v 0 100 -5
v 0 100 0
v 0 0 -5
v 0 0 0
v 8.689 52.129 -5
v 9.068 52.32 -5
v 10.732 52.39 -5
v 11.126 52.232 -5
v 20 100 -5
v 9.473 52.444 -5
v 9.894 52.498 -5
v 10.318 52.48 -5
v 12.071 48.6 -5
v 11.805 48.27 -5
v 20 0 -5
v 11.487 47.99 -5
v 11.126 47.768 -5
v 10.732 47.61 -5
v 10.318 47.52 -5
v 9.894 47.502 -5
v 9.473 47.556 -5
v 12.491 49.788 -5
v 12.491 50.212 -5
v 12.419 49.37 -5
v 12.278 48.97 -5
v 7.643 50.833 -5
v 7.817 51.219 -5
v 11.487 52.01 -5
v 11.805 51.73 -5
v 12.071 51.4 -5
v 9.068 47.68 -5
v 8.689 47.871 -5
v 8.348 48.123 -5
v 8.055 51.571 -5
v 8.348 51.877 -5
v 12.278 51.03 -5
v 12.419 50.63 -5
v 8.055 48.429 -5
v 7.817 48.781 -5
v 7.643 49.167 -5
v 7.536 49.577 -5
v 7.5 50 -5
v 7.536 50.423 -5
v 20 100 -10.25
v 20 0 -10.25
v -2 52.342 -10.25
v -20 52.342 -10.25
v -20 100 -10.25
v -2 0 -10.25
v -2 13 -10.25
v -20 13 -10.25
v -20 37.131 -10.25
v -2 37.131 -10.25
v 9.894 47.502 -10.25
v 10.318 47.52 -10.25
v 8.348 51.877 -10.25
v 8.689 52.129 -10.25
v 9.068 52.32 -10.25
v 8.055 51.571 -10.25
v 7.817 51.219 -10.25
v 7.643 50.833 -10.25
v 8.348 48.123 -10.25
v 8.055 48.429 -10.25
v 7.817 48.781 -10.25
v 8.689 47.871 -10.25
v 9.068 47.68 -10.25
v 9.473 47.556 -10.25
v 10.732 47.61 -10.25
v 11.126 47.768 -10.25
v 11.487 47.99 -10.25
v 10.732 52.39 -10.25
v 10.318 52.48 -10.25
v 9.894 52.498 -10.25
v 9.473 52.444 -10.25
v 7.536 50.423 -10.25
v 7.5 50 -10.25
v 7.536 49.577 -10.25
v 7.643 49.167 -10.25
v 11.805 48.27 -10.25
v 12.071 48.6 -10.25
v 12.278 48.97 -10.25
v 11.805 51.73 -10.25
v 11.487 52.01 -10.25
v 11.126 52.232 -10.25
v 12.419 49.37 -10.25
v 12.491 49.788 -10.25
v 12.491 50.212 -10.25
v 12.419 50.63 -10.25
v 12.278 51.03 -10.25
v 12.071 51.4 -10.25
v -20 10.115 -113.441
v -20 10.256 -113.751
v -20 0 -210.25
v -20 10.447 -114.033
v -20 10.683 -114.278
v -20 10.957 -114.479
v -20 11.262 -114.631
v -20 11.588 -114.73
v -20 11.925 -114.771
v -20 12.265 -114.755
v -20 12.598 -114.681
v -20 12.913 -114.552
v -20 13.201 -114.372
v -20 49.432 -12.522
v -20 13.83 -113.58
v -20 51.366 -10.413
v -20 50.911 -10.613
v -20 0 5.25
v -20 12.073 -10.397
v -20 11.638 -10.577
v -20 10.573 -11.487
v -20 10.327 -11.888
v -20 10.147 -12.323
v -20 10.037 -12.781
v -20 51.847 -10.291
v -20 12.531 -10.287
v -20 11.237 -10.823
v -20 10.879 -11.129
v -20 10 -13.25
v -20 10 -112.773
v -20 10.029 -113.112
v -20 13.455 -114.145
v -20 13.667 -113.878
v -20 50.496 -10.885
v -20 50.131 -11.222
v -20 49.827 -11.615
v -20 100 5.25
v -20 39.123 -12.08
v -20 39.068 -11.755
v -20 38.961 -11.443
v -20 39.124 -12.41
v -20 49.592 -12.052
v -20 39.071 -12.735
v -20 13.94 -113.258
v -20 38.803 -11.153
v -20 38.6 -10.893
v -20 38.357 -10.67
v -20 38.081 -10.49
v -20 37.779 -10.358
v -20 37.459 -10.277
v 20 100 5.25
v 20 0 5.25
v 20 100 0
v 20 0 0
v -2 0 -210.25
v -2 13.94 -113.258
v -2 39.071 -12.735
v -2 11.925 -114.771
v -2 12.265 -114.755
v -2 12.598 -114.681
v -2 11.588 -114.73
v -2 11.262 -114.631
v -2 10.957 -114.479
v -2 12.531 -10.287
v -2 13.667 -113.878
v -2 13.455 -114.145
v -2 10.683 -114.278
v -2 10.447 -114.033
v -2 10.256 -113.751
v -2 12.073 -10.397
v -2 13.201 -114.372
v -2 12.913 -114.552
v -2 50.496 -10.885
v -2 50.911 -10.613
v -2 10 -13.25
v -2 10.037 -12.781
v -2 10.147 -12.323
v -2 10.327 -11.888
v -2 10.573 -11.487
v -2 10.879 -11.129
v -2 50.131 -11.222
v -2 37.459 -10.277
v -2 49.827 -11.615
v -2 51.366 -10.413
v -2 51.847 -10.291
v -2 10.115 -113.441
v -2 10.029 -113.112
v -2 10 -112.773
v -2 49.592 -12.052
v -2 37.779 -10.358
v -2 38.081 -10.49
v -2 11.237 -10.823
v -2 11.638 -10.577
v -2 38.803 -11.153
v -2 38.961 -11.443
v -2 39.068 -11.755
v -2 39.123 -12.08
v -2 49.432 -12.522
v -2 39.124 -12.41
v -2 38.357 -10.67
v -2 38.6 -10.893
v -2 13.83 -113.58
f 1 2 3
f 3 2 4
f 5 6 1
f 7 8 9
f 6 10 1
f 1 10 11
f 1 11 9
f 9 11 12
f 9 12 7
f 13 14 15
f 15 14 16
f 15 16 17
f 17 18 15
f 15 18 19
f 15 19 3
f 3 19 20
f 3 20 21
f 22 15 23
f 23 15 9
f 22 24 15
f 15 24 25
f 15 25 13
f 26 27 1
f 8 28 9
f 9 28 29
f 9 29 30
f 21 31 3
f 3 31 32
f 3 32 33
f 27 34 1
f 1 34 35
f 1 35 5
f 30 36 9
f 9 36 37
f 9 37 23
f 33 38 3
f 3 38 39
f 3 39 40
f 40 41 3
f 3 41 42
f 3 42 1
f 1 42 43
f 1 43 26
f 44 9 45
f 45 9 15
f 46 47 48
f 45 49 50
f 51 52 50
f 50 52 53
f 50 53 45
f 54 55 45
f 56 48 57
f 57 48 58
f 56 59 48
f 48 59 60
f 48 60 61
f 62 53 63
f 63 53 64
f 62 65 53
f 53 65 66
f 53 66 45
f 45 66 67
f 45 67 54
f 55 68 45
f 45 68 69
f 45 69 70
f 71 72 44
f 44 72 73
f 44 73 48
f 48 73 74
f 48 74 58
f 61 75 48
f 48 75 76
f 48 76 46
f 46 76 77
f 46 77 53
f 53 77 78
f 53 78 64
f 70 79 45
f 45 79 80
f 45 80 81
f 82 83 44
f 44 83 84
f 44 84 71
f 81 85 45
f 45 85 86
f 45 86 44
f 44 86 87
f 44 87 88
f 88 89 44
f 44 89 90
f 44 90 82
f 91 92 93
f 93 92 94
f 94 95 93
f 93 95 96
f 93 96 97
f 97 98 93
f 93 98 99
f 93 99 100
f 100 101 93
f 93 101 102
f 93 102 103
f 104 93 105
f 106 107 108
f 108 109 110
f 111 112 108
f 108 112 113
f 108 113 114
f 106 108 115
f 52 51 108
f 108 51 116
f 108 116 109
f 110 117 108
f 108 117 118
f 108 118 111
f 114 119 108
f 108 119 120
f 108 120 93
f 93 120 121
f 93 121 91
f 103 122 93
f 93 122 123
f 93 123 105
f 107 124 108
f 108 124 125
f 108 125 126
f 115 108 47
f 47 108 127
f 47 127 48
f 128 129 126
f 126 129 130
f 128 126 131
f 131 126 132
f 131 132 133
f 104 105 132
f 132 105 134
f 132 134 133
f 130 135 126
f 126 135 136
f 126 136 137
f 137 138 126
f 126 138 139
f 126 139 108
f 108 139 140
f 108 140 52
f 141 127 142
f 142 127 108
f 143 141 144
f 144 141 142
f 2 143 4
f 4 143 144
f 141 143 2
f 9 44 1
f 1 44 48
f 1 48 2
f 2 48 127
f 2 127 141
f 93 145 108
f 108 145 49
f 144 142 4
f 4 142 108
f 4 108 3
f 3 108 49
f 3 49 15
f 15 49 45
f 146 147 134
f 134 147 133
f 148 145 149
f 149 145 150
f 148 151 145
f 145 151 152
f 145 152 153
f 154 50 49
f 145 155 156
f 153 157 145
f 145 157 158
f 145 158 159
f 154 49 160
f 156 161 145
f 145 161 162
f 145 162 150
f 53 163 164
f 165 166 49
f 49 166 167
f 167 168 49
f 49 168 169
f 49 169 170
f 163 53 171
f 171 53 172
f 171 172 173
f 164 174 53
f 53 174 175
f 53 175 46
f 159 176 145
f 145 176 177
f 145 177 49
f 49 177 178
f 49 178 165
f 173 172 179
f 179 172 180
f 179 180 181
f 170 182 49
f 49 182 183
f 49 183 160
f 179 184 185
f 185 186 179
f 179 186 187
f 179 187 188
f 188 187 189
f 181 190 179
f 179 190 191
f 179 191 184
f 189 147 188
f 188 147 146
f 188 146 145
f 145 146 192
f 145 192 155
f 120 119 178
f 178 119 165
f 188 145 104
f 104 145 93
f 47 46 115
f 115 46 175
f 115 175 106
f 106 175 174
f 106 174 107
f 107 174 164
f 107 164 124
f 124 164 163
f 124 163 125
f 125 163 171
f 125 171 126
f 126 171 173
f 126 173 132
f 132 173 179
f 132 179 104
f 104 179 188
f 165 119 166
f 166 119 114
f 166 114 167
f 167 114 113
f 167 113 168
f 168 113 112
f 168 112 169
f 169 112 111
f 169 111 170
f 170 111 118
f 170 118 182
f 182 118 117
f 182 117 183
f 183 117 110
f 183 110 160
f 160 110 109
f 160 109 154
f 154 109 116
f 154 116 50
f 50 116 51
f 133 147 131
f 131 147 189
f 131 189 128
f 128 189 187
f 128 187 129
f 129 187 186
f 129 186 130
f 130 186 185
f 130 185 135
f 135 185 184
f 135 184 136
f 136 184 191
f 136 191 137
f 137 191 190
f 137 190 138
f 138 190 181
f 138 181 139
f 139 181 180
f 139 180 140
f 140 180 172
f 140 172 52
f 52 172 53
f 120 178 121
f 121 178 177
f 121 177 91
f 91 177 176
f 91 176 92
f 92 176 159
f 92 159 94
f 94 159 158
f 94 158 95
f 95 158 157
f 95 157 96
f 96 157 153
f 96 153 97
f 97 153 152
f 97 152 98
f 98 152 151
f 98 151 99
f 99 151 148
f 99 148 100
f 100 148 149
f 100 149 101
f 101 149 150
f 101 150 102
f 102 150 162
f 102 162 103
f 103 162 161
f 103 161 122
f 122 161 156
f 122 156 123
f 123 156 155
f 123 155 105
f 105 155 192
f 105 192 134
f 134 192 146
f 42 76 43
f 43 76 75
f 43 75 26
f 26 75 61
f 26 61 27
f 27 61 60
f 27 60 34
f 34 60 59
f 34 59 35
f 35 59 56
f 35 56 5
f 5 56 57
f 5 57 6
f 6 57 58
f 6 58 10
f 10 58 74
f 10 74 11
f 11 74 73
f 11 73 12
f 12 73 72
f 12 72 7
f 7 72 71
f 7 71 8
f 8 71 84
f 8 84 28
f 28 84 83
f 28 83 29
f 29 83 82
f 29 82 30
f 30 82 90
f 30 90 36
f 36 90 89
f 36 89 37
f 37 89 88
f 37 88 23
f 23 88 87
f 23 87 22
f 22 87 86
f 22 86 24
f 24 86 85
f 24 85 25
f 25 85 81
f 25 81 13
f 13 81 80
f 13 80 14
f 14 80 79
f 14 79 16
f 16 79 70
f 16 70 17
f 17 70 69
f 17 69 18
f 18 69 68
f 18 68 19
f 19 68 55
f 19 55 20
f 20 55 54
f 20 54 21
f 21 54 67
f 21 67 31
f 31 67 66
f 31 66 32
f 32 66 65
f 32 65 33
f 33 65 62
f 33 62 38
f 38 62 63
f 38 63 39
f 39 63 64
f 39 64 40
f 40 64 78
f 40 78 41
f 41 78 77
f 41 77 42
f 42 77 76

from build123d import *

# Parameters (mm, degrees)
BOSS_EXTRUDE1_DEPTH = 100
EXTRUDE_THIN1_DEPTH = 18
FILLET1_R           = 3
FILLET2_R           = 3
FILLET3_R           = 2
FILLET4_R           = 2
CUT_EXTRUDE1_REACH  = 17.5
SKETCH3_R           = 2.5


with BuildPart() as part:
    # Sketch1 → Boss-Extrude1 (new body)
    with BuildSketch(Plane(origin=(0, 0, 0), x_dir=(1, 0, 0), z_dir=(0, 1, 0))):
        Polygon((0, 0), (20, 0), (20, -5.25), (-20, -5.25), (-20, 10.25), (20, 10.25), (20, 5), (0, 5), align=None)
    extrude(amount=BOSS_EXTRUDE1_DEPTH)

    # Sketch2 → Extrude-Thin1 (add)
    with BuildSketch(Plane.ZY.offset(20)):
        Polygon((-10.25, 0), (-210.25, 0), (-10.25, 50), (-7.82464375, 40.298574999), (-129.018943744, 10), (-10.25, 10), align=None)
    extrude(amount=-EXTRUDE_THIN1_DEPTH)

    # Fillet1
    fillet1_edges = [part.edges().sort_by_distance(p)[0] for p in [
        (-11, 50, -10.25),
    ]]
    fillet(fillet1_edges, radius=FILLET1_R)

    # Fillet2
    fillet2_edges = [part.edges().sort_by_distance(p)[0] for p in [
        (-11, 10, -10.25),
    ]]
    fillet(fillet2_edges, radius=FILLET2_R)

    # Fillet3
    fillet3_edges = [part.edges().sort_by_distance(p)[0] for p in [
        (-11, 39.692235936, -10.25),
    ]]
    fillet(fillet3_edges, radius=FILLET3_R)

    # Fillet4
    fillet4_edges = [part.edges().sort_by_distance(p)[0] for p in [
        (-11, 10, -129.018943744),
    ]]
    fillet(fillet4_edges, radius=FILLET4_R)

    # Sketch3 → Cut-Extrude1 (cut, up to next)
    with BuildSketch(Plane(origin=(0, 0, -10.25), x_dir=(-1, 0, 0), z_dir=(0, 0, -1)), mode=Mode.PRIVATE) as cut_extrude1_sk1:
        with Locations((-10, 50)):
            Circle(SKETCH3_R)
    cut_extrude1_tool1 = extrude(cut_extrude1_sk1.sketch, amount=-CUT_EXTRUDE1_REACH, mode=Mode.PRIVATE) & part.part
    add(cut_extrude1_tool1.solids().sort_by_distance((10, 50, -10.25))[0], mode=Mode.SUBTRACT)


solid = part.part
